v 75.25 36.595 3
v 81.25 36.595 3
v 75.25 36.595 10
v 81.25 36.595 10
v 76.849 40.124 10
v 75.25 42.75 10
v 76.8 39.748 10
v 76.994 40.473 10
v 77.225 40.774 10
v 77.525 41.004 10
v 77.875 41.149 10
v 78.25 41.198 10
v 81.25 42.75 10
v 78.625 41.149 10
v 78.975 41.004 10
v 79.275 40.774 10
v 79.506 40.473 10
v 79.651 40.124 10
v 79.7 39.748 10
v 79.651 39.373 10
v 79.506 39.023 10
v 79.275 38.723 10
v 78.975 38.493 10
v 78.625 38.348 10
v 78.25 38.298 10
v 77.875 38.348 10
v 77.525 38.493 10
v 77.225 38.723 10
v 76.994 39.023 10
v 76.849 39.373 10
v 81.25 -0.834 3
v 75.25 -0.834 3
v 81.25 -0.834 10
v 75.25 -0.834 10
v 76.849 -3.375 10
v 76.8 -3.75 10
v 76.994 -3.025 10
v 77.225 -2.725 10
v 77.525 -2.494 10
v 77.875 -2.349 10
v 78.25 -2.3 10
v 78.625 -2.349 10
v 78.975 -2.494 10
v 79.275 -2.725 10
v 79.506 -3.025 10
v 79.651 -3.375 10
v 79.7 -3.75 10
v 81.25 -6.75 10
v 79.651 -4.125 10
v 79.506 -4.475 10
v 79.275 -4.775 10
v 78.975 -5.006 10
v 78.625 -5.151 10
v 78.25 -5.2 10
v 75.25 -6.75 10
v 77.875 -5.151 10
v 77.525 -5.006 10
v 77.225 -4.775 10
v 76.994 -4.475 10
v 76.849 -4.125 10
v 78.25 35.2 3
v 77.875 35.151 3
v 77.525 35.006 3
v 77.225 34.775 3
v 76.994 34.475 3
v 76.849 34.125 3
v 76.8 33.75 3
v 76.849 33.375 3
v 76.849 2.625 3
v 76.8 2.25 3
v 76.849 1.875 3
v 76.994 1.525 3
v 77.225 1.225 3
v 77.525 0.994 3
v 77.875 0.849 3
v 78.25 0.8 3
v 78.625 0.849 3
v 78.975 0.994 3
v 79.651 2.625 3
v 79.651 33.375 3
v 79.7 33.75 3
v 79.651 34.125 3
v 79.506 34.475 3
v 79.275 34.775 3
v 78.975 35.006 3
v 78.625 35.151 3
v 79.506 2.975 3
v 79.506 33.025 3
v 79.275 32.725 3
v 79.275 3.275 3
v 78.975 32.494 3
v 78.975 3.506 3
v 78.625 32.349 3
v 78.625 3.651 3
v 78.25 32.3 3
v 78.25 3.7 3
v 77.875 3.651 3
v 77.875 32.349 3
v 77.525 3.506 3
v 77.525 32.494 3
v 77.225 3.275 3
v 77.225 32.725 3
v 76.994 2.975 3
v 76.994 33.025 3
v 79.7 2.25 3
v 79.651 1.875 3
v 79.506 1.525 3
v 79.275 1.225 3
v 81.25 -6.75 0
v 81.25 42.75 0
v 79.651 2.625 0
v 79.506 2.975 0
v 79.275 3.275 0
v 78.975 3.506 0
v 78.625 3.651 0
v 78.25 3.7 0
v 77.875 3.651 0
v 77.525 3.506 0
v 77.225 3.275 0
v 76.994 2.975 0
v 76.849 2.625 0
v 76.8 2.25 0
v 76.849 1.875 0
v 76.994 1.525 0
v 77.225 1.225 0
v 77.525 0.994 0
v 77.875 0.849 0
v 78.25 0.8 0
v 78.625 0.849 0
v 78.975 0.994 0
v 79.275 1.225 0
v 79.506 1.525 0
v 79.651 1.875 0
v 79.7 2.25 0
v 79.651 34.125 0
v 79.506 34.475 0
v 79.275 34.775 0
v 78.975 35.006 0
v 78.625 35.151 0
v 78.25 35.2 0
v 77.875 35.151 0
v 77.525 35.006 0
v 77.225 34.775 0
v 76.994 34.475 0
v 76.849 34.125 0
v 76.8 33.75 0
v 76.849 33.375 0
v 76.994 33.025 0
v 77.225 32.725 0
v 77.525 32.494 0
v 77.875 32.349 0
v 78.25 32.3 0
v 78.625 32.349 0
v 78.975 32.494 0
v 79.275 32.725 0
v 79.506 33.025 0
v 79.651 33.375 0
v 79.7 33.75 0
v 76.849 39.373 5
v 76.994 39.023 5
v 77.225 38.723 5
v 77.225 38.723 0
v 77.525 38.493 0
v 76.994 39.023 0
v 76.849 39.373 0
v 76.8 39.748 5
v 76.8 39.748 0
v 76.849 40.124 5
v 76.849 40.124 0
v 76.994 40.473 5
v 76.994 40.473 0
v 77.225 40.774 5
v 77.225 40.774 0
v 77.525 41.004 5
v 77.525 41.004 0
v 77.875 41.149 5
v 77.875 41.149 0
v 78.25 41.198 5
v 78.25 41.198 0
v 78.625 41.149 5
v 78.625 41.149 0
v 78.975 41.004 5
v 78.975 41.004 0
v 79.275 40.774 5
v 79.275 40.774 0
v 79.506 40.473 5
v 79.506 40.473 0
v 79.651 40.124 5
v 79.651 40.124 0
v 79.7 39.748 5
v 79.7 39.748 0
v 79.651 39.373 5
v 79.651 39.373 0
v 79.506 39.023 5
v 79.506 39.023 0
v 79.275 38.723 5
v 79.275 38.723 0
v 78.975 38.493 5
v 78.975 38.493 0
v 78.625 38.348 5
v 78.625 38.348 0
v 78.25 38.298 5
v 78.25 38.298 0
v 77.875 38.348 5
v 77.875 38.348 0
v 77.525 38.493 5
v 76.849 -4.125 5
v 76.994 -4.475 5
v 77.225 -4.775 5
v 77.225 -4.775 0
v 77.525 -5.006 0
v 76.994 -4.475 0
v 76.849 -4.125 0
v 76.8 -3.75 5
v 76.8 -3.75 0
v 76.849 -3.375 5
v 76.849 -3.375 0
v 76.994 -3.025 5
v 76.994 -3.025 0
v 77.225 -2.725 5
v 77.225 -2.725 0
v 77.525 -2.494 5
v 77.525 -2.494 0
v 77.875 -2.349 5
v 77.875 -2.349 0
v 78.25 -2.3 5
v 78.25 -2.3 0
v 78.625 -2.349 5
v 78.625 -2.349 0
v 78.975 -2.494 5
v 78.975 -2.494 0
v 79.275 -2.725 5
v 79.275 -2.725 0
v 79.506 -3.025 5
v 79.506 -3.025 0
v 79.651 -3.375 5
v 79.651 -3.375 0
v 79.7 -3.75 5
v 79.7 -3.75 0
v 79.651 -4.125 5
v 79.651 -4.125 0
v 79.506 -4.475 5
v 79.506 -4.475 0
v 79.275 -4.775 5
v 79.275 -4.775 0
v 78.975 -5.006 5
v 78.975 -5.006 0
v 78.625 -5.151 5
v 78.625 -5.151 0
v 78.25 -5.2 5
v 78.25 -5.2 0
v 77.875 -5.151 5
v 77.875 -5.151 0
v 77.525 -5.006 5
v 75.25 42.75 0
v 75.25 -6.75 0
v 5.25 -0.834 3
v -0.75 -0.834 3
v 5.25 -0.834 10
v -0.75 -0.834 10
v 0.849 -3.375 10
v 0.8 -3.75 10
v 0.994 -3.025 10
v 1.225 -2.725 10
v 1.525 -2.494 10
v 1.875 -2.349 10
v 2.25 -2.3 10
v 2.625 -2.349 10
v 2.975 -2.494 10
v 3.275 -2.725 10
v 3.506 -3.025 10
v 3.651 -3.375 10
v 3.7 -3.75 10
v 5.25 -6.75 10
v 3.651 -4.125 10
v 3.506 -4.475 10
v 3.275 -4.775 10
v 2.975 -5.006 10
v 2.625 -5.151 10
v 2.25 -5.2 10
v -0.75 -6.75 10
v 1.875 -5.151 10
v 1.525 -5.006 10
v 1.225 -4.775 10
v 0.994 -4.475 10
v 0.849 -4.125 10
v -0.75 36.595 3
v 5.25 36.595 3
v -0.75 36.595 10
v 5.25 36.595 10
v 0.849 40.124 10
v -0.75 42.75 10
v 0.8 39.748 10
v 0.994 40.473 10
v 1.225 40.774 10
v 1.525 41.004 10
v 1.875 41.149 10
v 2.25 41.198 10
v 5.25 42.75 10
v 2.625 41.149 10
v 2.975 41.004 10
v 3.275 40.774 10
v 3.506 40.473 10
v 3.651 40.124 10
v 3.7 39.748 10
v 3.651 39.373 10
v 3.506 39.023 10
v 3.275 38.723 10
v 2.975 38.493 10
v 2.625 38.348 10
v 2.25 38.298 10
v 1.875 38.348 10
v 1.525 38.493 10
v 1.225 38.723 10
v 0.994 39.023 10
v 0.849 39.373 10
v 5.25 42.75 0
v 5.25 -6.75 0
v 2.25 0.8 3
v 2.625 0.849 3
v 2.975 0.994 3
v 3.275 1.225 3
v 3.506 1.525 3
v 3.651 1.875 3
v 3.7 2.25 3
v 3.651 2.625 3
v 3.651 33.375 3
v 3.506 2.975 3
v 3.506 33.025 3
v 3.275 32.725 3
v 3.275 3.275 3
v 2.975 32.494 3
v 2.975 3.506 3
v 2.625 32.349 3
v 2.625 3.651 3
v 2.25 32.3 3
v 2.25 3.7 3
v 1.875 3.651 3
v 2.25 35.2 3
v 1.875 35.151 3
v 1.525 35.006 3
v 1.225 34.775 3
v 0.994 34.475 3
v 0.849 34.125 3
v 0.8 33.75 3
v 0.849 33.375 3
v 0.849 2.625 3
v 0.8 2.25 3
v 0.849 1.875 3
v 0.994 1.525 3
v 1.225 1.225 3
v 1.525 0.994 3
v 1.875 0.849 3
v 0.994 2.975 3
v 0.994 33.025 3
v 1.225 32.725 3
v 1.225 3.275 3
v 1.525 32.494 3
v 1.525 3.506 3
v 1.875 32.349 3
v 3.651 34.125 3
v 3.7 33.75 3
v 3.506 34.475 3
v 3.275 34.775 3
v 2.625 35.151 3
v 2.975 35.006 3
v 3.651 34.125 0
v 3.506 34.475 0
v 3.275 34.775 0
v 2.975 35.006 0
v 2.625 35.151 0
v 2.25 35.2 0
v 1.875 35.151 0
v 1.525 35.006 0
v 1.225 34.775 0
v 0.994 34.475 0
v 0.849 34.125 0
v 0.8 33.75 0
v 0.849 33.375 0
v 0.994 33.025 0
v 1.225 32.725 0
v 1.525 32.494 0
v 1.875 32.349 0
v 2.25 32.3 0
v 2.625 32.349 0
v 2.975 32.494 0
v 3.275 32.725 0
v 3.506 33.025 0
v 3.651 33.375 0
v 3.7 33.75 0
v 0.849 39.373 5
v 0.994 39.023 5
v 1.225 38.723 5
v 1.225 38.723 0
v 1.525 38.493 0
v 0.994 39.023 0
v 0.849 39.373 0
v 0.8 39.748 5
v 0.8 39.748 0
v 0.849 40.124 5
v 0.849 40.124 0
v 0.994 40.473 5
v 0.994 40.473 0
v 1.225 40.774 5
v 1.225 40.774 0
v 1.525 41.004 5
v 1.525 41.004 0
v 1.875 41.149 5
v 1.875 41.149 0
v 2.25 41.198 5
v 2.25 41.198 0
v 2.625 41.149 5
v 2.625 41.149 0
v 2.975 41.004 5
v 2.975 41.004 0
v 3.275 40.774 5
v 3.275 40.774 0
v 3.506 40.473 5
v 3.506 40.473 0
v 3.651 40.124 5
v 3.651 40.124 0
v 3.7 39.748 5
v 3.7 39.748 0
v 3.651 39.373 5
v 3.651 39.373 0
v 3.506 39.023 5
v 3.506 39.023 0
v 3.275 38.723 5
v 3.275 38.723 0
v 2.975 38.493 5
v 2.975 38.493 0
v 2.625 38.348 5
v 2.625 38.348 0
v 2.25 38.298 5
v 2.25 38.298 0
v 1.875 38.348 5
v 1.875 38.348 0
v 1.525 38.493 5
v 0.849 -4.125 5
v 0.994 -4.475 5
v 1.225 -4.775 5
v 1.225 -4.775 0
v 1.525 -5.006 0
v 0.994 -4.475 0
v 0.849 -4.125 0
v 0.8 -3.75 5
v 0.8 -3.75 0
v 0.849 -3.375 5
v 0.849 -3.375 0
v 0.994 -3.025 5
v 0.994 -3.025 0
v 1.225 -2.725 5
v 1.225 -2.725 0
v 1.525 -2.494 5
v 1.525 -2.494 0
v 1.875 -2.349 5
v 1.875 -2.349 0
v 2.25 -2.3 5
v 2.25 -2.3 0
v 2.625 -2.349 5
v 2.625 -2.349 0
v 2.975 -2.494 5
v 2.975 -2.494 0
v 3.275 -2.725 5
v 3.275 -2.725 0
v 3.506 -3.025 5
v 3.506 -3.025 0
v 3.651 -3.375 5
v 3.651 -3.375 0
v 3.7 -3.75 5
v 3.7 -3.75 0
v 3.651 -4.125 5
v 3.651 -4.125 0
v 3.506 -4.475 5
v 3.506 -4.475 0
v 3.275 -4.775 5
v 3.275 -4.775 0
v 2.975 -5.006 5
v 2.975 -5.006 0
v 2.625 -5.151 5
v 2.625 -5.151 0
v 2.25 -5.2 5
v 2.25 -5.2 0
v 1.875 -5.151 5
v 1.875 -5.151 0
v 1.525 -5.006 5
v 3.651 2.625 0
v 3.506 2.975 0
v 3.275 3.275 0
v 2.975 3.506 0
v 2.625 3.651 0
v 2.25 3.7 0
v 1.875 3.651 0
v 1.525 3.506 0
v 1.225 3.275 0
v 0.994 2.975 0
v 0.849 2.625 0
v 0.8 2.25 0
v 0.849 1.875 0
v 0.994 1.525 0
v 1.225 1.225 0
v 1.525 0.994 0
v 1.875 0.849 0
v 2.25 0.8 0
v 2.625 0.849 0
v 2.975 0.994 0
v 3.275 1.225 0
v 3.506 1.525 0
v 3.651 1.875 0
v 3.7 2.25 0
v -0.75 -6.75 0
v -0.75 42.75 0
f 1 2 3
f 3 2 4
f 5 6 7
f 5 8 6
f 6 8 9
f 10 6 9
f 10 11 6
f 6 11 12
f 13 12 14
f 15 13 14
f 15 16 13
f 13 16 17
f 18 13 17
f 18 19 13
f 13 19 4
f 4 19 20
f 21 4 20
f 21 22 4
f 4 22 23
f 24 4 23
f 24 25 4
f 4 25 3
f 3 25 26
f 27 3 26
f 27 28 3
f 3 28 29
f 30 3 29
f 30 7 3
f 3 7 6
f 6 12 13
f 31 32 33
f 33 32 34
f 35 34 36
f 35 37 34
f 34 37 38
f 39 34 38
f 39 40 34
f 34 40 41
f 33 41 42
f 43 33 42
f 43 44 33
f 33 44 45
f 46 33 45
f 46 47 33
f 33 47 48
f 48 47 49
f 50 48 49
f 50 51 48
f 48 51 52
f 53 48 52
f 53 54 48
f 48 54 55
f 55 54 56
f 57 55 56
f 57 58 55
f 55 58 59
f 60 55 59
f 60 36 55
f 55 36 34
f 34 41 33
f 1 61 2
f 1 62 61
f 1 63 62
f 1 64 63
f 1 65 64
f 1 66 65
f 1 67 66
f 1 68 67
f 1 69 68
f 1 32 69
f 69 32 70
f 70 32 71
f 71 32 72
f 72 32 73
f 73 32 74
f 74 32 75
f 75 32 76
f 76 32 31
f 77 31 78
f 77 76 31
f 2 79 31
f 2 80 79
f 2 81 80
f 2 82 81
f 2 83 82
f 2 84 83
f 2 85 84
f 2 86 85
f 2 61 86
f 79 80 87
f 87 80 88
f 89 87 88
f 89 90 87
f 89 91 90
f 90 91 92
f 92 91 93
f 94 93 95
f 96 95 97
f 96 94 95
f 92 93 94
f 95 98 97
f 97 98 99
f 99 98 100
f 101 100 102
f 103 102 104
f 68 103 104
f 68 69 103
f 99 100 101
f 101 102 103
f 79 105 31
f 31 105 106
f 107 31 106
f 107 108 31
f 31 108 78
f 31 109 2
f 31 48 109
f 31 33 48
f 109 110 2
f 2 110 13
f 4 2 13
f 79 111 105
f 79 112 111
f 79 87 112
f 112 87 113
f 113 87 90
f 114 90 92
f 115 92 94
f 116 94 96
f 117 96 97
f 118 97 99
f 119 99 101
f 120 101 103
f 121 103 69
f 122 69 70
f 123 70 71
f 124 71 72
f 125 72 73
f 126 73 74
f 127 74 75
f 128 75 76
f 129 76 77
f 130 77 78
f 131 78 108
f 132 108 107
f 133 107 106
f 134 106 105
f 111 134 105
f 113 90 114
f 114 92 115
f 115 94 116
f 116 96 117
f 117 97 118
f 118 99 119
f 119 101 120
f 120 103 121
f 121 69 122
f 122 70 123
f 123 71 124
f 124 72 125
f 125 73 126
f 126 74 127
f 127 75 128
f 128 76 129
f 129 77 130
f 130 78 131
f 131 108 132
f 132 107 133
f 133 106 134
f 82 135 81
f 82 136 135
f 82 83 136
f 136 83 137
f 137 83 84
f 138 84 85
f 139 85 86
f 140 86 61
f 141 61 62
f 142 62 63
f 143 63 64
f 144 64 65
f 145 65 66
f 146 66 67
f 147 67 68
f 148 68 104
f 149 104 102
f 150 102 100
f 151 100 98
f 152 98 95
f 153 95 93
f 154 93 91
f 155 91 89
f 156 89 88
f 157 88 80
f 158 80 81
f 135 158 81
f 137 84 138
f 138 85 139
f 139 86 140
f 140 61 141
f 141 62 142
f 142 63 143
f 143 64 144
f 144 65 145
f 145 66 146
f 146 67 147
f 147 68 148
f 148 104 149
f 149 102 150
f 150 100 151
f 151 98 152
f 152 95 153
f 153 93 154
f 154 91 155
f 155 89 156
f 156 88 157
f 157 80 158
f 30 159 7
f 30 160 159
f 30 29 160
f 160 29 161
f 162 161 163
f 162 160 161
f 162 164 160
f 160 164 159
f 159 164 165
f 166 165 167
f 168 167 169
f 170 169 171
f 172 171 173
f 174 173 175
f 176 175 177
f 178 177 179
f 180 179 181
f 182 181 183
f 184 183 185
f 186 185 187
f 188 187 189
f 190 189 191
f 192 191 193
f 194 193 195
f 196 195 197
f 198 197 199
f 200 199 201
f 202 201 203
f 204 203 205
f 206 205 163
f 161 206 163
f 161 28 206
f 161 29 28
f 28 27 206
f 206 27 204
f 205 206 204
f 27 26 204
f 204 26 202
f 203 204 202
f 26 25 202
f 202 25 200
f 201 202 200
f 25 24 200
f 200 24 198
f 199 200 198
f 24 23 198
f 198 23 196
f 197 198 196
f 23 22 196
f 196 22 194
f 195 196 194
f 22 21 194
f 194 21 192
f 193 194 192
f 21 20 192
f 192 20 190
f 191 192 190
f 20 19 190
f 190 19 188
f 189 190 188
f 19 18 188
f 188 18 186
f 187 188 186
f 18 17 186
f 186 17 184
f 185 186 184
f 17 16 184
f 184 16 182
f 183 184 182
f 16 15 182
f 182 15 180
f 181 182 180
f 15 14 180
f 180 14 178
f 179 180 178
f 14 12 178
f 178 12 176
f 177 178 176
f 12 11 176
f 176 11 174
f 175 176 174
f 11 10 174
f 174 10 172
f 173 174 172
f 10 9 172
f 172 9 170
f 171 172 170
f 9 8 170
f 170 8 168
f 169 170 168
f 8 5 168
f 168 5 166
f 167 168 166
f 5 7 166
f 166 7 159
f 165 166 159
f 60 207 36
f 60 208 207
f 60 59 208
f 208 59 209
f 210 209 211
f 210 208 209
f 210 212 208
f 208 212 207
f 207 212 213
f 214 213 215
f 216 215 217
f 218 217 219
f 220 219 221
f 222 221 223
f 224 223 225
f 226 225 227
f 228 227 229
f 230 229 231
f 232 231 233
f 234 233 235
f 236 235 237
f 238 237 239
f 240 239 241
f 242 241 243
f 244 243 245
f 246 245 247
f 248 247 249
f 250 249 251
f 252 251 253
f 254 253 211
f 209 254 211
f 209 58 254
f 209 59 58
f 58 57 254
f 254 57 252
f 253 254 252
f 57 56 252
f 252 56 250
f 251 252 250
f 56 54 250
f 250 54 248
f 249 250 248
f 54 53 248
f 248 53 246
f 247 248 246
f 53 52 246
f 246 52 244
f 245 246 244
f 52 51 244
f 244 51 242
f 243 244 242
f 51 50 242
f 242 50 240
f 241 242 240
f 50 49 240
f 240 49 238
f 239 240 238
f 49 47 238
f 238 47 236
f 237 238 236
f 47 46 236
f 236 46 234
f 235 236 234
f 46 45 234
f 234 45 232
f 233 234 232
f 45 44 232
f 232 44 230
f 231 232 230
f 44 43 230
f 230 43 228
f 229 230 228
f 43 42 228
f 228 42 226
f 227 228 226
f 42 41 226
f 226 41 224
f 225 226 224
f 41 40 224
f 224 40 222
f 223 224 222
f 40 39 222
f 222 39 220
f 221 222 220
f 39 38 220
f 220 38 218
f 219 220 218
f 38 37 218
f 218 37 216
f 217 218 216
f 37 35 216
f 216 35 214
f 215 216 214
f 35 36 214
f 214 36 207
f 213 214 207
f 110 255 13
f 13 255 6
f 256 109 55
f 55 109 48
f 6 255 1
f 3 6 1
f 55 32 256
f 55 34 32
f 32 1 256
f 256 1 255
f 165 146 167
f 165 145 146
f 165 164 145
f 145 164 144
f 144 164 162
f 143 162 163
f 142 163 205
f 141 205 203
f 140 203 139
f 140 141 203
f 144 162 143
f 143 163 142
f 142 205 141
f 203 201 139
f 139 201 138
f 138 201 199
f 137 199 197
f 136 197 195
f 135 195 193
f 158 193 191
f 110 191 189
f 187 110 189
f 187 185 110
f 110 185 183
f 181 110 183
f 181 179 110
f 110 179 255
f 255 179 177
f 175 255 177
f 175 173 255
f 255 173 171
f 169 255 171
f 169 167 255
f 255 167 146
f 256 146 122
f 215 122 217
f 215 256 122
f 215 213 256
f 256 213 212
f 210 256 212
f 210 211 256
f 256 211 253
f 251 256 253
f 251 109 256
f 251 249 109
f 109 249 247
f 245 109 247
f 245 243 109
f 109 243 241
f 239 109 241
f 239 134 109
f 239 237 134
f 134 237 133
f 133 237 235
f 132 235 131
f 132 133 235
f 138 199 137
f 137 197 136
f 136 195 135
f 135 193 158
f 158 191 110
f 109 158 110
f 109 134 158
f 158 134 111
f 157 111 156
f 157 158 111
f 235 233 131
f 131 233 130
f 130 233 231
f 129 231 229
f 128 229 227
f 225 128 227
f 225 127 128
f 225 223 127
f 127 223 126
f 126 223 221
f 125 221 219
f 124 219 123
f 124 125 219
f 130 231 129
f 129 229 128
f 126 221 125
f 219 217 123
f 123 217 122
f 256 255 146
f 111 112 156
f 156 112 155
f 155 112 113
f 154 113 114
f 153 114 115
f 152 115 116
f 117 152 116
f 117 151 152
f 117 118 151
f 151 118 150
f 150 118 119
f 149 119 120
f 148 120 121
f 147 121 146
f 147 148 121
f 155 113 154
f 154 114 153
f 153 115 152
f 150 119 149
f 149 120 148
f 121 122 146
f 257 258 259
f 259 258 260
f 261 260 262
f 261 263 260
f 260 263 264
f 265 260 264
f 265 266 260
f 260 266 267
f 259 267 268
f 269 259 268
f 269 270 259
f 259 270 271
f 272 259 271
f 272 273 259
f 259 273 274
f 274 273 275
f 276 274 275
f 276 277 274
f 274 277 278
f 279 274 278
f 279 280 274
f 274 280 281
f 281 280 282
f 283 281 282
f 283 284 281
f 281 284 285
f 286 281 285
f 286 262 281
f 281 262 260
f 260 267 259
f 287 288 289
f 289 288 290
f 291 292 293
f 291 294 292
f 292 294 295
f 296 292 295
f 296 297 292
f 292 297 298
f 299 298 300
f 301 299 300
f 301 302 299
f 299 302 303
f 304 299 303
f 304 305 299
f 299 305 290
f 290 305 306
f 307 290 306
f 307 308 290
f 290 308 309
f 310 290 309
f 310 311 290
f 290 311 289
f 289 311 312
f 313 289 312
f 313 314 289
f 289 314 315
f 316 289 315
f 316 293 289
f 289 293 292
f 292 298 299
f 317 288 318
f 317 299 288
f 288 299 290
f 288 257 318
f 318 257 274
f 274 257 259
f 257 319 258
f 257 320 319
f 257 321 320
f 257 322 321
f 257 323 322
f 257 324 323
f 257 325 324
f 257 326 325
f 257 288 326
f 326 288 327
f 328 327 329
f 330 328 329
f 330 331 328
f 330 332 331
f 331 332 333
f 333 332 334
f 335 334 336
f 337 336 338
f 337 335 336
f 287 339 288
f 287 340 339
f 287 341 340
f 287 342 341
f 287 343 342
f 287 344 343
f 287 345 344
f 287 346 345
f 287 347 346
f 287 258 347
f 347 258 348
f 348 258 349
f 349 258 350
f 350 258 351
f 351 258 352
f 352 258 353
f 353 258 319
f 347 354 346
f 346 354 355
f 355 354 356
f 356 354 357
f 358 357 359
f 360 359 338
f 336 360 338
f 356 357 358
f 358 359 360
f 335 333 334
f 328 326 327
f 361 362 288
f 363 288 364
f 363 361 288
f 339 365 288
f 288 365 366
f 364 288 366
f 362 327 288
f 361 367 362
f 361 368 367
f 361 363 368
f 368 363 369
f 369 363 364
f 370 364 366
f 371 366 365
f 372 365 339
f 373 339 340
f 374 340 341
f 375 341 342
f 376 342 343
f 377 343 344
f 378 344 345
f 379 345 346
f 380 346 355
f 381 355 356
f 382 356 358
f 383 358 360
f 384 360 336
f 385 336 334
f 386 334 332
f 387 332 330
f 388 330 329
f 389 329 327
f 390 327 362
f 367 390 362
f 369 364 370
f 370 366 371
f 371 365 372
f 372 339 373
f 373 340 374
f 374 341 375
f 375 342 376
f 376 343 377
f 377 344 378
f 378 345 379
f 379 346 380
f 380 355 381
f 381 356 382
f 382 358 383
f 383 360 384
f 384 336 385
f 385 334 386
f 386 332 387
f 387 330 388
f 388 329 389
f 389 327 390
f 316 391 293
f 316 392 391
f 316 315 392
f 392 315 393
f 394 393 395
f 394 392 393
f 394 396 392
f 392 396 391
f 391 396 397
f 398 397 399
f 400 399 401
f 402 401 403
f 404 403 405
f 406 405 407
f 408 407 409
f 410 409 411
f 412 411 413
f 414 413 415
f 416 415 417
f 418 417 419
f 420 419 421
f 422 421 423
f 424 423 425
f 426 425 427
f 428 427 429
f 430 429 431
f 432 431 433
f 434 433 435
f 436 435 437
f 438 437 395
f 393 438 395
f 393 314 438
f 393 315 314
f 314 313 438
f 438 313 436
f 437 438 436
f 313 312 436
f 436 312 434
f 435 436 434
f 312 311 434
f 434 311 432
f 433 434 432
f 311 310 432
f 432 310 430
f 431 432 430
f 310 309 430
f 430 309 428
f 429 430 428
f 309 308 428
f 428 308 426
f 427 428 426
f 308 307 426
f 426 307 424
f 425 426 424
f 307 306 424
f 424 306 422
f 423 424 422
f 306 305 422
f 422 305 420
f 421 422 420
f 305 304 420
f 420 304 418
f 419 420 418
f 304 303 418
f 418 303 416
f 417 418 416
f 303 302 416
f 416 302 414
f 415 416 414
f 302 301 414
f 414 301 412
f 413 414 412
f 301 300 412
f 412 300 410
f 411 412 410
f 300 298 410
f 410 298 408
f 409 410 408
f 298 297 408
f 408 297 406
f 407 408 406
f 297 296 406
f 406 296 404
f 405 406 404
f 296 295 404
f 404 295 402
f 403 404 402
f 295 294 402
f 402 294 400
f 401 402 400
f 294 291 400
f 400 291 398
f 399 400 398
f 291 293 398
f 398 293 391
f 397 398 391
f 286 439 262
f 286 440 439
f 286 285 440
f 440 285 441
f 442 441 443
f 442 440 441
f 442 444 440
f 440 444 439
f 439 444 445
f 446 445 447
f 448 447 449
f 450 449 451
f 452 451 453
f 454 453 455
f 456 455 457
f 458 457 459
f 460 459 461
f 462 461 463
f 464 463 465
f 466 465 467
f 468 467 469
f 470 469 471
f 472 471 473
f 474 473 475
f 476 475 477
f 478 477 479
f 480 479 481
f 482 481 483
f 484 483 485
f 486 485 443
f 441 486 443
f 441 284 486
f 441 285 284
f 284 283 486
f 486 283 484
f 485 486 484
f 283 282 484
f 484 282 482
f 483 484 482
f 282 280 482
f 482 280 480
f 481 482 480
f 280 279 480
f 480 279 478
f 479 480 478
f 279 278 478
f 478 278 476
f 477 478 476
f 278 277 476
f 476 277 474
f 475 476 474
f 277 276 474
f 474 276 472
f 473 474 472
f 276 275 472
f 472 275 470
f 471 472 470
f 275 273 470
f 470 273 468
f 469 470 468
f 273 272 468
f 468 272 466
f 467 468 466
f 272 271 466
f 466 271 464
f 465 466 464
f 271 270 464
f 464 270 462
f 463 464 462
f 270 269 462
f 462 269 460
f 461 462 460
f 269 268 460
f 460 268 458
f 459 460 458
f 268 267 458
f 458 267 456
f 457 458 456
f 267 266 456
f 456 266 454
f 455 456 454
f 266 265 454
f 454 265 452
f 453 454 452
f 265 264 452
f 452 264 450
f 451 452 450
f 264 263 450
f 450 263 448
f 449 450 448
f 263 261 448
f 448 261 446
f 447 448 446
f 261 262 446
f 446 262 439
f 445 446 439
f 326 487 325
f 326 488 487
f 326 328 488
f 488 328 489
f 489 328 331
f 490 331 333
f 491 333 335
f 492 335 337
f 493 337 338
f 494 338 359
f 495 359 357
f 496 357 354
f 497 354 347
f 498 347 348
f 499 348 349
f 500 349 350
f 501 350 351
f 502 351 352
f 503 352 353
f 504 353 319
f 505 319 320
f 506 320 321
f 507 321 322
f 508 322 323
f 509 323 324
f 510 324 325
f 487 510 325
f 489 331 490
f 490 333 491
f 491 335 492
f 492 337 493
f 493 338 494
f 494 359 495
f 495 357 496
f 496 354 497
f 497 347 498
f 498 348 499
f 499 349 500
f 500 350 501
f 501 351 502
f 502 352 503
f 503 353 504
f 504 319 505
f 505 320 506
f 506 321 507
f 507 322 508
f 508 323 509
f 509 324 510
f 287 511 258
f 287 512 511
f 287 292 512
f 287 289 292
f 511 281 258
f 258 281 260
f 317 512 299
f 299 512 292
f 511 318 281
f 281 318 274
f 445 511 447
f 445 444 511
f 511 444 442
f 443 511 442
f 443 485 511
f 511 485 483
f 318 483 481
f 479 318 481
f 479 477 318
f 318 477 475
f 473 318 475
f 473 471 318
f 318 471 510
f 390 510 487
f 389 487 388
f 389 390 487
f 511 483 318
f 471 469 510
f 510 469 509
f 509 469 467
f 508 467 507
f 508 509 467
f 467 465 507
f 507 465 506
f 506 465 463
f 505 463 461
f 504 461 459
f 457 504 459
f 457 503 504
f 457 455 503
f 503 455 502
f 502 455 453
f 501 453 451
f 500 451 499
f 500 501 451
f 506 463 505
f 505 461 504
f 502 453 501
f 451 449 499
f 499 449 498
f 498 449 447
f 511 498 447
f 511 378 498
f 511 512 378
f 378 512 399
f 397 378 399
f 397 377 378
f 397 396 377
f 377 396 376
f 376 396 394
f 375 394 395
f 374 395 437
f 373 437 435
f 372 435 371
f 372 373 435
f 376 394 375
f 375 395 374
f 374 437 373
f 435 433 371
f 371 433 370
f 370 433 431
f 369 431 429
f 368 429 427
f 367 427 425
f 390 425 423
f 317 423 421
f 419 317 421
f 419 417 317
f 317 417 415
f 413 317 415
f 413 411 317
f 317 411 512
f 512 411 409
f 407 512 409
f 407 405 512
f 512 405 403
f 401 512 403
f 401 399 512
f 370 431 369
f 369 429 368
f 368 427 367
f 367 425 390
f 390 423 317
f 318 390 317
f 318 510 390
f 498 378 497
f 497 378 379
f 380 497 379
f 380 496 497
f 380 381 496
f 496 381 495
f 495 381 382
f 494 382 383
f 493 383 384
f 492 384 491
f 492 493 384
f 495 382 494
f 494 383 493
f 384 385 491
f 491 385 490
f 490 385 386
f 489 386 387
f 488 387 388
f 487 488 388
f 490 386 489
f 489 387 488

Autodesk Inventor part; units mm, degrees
ref_plane "YZ Plane" through (0, 0, 0) normal (1, 0, 0) x (0, 1, 0)
ref_plane "XZ Plane" through (0, 0, 0) normal (0, 1, 0) x (-1, 0, 0)
sketch "Sketch1" plane through (0, 0, 0) normal (0, 0, 1) x (1, 0, 0)
  line L0 (75.25, 42.75) -> (75.25, -6.75)
  line L1 (75.25, -6.75) -> (81.25, -6.75)
  line L2 (81.25, -6.75) -> (81.25, 42.75)
  circle A0 centre (78.25, -3.75) radius 1.45
  circle A1 centre (78.25, 39.7484) radius 1.45
  circle A2 centre (78.25, 33.75) radius 1.45
  circle A3 centre (78.25, 2.25) radius 1.45
  line L3 (75.25, 42.75) -> (81.25, 42.75)
  line L4 (81.25, 42.75) -> (81.25, -6.75)
  line L5 (75.25, -6.75) -> (75.25, 42.75)
  line L6 (5.25, 18) -> (81.25, 18)
  line L7 (-0.75, 18) -> (81.25, 18)
  line L8 (40.25, 18) -> (40.25, 45.75)
  line L9 (40.25, 45.75) -> (40.25, 18)
  line L10 (40.25, -9.75) -> (40.25, 18)
  line L11 (75.25, 36.7484) -> (81.25, 36.7484)
  line L12 (75.25, -0.7484) -> (81.25, -0.7484)
  line L13 (5.25, 42.75) -> (5.25, -6.75)
  line L14 (5.25, -6.75) -> (-0.75, -6.75)
  line L15 (-0.75, -6.75) -> (-0.75, 42.75)
  circle A4 centre (2.25, -3.75) radius 1.45
  circle A5 centre (2.25, 39.7484) radius 1.45
  circle A6 centre (2.25, 33.75) radius 1.45
  circle A7 centre (2.25, 2.25) radius 1.45
  line L16 (5.25, 42.75) -> (-0.75, 42.75)
  line L17 (-0.75, 42.75) -> (-0.75, -6.75)
  line L18 (5.25, -6.75) -> (5.25, 42.75)
  line L19 (5.25, 36.7484) -> (-0.75, 36.7484)
  line L20 (5.25, -0.7484) -> (-0.75, -0.7484)
  line L21 (-13.8005, 43.9818) -> (170.3241, 43.9818)
  line L22 (-13.8005, -10.2335) -> (-13.8005, 43.9818)
  dimension "d9" = 18.7484
  dimension "d10" = 21.75
  dimension "d11" = 3
ref_plane "Work Plane1" through (0, 0, 3) normal (0, 0, 1) x (1, 0, 0)
extrude "Extrusion3" add sketch "Sketch1" along normal blind 3
sketch "Sketch4" plane through (0, 0, 0) normal (0, 0, -1) x (-1, 0, 0)
  line L0 (-81.25, 42.75) -> (-75.25, 42.75) projected
  circle A0 centre (-78.25, -3.75) radius 1.45 projected
  line L1 (-75.25, -6.75) -> (-81.25, -6.75) projected
  line L2 (-81.25, 42.75) -> (-75.25, 42.75)
  line L3 (-75.25, 42.75) -> (-75.25, 36.595)
  line L4 (-75.25, 36.595) -> (-81.25, 36.595)
  line L5 (-81.25, 36.595) -> (-81.25, 42.75)
  line L6 (-81.25, -6.75) -> (-75.25, -6.75)
  line L7 (-75.25, -6.75) -> (-75.25, -0.8339)
  line L8 (-75.25, -0.8339) -> (-81.25, -0.8339)
  line L9 (-81.25, -0.8339) -> (-81.25, -6.75)
  line L10 (-75.25, 18) -> (-5.25, 18)
  line L11 (-40.25, 18) -> (-40.25, 36.595)
  line L12 (-40.25, 36.595) -> (-40.25, 18)
  circle A1 centre (-78.25, 39.7484) radius 1.45 projected
  line L13 (0.75, 42.75) -> (-5.25, 42.75)
  line L14 (0.75, 42.75) -> (-5.25, 42.75)
  line L15 (-5.25, 42.75) -> (-5.25, 36.595)
  line L16 (-5.25, 36.595) -> (0.75, 36.595)
  line L17 (0.75, 36.595) -> (0.75, 42.75)
  circle A2 centre (-2.25, 39.7484) radius 1.45
  circle A3 centre (-2.25, -3.75) radius 1.45
  line L18 (-5.25, -6.75) -> (0.75, -6.75)
  line L19 (0.75, -6.75) -> (-5.25, -6.75)
  line L20 (-5.25, -6.75) -> (-5.25, -0.8339)
  line L21 (-5.25, -0.8339) -> (0.75, -0.8339)
  line L22 (0.75, -0.8339) -> (0.75, -6.75)
extrude "Extrusion4" add sketch "Sketch4" against normal blind 10
properties part number "LCD_bracket"
